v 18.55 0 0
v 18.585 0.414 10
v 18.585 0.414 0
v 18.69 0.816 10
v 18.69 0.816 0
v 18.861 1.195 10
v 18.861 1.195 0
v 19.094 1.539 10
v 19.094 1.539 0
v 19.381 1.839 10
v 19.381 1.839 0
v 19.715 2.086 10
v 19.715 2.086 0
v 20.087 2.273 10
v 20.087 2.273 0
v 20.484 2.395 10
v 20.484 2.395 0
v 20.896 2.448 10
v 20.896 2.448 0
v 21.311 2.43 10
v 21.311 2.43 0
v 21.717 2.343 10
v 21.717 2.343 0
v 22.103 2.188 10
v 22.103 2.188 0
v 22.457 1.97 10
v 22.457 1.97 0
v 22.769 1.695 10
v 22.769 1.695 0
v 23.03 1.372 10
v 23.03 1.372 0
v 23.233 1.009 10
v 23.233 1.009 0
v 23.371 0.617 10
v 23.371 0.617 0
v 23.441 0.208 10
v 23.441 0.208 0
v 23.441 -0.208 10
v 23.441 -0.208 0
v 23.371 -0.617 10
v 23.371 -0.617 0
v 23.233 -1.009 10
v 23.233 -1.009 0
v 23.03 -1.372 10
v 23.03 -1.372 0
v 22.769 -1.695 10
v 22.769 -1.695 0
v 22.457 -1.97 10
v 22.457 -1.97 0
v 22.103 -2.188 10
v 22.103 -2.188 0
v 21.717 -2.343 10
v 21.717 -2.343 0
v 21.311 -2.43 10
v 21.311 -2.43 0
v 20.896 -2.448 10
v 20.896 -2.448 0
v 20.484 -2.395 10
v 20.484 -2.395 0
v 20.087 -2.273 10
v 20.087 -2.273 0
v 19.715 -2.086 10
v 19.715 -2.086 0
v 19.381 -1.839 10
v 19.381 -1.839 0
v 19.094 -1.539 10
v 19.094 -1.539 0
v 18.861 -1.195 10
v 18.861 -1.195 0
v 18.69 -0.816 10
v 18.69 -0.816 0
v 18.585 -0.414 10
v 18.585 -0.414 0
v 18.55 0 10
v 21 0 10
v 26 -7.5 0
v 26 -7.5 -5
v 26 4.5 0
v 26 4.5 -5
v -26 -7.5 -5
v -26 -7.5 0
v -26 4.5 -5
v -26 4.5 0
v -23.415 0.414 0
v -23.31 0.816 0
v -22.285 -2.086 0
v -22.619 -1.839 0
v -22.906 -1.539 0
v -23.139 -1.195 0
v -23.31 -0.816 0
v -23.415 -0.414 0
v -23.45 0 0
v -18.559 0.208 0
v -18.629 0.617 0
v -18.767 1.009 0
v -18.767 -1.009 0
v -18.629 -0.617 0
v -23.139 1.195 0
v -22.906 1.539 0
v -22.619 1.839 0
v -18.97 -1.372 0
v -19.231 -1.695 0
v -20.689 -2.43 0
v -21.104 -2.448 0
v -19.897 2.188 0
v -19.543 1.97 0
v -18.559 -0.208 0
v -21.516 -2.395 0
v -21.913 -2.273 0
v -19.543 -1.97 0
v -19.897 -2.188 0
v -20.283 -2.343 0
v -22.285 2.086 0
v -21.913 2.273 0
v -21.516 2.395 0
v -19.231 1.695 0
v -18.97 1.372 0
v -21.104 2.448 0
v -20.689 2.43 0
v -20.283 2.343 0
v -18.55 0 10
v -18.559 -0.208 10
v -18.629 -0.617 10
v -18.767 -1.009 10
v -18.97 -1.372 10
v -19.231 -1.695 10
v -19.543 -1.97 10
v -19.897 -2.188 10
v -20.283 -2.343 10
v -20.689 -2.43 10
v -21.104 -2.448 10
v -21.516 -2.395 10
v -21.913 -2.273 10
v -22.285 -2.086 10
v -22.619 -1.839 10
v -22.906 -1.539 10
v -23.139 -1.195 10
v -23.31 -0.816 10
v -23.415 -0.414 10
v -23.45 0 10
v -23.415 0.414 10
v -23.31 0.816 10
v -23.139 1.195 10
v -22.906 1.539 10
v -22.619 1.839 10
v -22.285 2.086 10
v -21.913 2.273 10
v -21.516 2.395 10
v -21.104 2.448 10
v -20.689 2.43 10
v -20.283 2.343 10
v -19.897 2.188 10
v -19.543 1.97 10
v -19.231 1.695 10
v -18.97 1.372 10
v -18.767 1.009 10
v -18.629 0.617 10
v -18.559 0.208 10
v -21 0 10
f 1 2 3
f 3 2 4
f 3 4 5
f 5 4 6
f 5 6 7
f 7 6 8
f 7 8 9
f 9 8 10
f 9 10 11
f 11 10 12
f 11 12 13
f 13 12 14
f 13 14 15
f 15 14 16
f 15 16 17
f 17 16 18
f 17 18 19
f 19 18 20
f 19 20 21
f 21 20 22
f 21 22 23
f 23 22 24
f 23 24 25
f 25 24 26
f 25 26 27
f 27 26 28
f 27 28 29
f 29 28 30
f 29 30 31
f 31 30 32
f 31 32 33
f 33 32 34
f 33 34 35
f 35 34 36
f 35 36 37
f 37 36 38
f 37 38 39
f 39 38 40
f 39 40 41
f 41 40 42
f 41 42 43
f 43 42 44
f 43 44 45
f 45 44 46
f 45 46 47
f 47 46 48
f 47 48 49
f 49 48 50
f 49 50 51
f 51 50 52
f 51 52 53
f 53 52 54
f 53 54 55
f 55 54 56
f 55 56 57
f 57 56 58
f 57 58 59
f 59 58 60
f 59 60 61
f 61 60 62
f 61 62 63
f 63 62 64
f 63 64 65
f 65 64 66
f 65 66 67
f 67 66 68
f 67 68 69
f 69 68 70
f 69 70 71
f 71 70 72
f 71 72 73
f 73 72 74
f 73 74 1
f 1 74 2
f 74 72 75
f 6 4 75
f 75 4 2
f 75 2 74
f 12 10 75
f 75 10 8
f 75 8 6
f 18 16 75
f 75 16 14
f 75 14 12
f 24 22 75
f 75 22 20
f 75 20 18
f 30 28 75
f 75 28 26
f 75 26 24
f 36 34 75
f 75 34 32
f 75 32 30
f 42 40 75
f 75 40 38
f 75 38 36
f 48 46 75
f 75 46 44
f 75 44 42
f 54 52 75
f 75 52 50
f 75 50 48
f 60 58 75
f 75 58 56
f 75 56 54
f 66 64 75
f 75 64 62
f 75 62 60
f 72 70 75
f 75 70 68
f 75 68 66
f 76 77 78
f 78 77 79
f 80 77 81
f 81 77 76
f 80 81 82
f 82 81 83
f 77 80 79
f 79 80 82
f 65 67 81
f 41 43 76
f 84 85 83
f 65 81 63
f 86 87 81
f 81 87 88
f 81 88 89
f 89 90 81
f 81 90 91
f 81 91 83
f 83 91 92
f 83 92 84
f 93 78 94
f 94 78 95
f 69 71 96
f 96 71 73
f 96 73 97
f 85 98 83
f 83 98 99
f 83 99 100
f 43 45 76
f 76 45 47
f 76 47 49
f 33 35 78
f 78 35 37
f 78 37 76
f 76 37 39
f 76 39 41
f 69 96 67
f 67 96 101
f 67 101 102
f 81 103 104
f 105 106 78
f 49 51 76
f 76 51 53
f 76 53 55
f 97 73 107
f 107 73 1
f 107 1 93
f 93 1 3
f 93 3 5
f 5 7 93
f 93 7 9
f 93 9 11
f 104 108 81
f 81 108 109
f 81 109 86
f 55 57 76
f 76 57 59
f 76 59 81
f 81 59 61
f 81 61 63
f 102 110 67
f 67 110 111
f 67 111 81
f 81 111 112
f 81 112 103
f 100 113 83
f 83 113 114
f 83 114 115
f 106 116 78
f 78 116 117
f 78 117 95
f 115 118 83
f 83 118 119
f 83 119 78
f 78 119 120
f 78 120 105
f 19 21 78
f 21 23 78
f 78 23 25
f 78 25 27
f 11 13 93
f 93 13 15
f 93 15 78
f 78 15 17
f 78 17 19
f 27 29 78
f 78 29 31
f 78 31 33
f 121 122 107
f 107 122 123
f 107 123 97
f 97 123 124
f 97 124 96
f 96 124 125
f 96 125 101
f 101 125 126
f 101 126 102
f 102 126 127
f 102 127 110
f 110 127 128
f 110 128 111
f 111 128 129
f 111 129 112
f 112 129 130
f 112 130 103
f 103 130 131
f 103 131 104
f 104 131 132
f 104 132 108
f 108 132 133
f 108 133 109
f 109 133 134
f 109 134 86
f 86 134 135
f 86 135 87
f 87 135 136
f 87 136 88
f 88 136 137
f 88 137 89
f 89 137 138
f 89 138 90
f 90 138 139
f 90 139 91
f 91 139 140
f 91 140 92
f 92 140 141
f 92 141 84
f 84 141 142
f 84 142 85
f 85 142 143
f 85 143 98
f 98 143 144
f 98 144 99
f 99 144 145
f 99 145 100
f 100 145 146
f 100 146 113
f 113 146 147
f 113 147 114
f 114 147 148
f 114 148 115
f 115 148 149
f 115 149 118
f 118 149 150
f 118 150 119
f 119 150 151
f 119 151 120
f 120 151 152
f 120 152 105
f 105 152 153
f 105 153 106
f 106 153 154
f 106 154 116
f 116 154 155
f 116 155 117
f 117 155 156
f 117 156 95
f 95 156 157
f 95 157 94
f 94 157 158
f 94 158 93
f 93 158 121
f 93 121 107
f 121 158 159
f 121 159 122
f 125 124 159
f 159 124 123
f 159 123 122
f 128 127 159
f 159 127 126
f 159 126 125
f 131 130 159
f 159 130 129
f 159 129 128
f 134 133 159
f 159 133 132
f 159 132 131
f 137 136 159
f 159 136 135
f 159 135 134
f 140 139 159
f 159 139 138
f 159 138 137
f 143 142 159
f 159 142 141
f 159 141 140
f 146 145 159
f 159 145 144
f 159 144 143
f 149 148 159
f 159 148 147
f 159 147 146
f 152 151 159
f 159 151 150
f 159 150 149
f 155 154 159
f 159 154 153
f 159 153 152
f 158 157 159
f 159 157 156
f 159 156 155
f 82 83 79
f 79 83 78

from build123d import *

# Parameters (mm, degrees)
SKETCH_3_R          = 2.45
EXTRUDE_2_DEPTH     = 10
EXTRUDE_2_2_DEPTH   = 10
SKETCH_4_W          = 52
SKETCH_4_H          = 15
EXTRUDE_3_DEPTH     = 5
SKETCH_5_W          = 52
SKETCH_5_H          = 3
CUT_EXTRUDE_1_DEPTH = 31.939457009


with BuildPart() as part:
    # 스케치3 → 보스-돌출2 (new body)
    with BuildSketch(Plane.XY):
        with Locations((-21, 0)):
            Circle(SKETCH_3_R)
    extrude(amount=EXTRUDE_2_DEPTH)



with BuildPart() as body_2:
    # 스케치3 → Extrude 2 2 (new body)
    with BuildSketch(Plane.XY):
        with Locations(Location((21, 0, 0), (0, 0, 180))):
            Circle(SKETCH_3_R)
    extrude(amount=EXTRUDE_2_2_DEPTH)


with BuildPart() as part_1:
    add(part.part)

    add(body_2.part)  # 보스-돌출3 merges body 2
    # 스케치4 → 보스-돌출3 (add)
    with BuildSketch(Plane.XY):
        Rectangle(SKETCH_4_W, SKETCH_4_H)
    extrude(amount=-EXTRUDE_3_DEPTH)

    # 스케치5 → 컷-돌출1 (cut, through all)
    with BuildSketch(Plane(origin=(0, 0, -5), x_dir=(-1, 0, 0), z_dir=(0, 0, -1))):
        with Locations((0, 6)):
            Rectangle(SKETCH_5_W, SKETCH_5_H)
    extrude(amount=-CUT_EXTRUDE_1_DEPTH, mode=Mode.SUBTRACT)


solid = part_1.part
